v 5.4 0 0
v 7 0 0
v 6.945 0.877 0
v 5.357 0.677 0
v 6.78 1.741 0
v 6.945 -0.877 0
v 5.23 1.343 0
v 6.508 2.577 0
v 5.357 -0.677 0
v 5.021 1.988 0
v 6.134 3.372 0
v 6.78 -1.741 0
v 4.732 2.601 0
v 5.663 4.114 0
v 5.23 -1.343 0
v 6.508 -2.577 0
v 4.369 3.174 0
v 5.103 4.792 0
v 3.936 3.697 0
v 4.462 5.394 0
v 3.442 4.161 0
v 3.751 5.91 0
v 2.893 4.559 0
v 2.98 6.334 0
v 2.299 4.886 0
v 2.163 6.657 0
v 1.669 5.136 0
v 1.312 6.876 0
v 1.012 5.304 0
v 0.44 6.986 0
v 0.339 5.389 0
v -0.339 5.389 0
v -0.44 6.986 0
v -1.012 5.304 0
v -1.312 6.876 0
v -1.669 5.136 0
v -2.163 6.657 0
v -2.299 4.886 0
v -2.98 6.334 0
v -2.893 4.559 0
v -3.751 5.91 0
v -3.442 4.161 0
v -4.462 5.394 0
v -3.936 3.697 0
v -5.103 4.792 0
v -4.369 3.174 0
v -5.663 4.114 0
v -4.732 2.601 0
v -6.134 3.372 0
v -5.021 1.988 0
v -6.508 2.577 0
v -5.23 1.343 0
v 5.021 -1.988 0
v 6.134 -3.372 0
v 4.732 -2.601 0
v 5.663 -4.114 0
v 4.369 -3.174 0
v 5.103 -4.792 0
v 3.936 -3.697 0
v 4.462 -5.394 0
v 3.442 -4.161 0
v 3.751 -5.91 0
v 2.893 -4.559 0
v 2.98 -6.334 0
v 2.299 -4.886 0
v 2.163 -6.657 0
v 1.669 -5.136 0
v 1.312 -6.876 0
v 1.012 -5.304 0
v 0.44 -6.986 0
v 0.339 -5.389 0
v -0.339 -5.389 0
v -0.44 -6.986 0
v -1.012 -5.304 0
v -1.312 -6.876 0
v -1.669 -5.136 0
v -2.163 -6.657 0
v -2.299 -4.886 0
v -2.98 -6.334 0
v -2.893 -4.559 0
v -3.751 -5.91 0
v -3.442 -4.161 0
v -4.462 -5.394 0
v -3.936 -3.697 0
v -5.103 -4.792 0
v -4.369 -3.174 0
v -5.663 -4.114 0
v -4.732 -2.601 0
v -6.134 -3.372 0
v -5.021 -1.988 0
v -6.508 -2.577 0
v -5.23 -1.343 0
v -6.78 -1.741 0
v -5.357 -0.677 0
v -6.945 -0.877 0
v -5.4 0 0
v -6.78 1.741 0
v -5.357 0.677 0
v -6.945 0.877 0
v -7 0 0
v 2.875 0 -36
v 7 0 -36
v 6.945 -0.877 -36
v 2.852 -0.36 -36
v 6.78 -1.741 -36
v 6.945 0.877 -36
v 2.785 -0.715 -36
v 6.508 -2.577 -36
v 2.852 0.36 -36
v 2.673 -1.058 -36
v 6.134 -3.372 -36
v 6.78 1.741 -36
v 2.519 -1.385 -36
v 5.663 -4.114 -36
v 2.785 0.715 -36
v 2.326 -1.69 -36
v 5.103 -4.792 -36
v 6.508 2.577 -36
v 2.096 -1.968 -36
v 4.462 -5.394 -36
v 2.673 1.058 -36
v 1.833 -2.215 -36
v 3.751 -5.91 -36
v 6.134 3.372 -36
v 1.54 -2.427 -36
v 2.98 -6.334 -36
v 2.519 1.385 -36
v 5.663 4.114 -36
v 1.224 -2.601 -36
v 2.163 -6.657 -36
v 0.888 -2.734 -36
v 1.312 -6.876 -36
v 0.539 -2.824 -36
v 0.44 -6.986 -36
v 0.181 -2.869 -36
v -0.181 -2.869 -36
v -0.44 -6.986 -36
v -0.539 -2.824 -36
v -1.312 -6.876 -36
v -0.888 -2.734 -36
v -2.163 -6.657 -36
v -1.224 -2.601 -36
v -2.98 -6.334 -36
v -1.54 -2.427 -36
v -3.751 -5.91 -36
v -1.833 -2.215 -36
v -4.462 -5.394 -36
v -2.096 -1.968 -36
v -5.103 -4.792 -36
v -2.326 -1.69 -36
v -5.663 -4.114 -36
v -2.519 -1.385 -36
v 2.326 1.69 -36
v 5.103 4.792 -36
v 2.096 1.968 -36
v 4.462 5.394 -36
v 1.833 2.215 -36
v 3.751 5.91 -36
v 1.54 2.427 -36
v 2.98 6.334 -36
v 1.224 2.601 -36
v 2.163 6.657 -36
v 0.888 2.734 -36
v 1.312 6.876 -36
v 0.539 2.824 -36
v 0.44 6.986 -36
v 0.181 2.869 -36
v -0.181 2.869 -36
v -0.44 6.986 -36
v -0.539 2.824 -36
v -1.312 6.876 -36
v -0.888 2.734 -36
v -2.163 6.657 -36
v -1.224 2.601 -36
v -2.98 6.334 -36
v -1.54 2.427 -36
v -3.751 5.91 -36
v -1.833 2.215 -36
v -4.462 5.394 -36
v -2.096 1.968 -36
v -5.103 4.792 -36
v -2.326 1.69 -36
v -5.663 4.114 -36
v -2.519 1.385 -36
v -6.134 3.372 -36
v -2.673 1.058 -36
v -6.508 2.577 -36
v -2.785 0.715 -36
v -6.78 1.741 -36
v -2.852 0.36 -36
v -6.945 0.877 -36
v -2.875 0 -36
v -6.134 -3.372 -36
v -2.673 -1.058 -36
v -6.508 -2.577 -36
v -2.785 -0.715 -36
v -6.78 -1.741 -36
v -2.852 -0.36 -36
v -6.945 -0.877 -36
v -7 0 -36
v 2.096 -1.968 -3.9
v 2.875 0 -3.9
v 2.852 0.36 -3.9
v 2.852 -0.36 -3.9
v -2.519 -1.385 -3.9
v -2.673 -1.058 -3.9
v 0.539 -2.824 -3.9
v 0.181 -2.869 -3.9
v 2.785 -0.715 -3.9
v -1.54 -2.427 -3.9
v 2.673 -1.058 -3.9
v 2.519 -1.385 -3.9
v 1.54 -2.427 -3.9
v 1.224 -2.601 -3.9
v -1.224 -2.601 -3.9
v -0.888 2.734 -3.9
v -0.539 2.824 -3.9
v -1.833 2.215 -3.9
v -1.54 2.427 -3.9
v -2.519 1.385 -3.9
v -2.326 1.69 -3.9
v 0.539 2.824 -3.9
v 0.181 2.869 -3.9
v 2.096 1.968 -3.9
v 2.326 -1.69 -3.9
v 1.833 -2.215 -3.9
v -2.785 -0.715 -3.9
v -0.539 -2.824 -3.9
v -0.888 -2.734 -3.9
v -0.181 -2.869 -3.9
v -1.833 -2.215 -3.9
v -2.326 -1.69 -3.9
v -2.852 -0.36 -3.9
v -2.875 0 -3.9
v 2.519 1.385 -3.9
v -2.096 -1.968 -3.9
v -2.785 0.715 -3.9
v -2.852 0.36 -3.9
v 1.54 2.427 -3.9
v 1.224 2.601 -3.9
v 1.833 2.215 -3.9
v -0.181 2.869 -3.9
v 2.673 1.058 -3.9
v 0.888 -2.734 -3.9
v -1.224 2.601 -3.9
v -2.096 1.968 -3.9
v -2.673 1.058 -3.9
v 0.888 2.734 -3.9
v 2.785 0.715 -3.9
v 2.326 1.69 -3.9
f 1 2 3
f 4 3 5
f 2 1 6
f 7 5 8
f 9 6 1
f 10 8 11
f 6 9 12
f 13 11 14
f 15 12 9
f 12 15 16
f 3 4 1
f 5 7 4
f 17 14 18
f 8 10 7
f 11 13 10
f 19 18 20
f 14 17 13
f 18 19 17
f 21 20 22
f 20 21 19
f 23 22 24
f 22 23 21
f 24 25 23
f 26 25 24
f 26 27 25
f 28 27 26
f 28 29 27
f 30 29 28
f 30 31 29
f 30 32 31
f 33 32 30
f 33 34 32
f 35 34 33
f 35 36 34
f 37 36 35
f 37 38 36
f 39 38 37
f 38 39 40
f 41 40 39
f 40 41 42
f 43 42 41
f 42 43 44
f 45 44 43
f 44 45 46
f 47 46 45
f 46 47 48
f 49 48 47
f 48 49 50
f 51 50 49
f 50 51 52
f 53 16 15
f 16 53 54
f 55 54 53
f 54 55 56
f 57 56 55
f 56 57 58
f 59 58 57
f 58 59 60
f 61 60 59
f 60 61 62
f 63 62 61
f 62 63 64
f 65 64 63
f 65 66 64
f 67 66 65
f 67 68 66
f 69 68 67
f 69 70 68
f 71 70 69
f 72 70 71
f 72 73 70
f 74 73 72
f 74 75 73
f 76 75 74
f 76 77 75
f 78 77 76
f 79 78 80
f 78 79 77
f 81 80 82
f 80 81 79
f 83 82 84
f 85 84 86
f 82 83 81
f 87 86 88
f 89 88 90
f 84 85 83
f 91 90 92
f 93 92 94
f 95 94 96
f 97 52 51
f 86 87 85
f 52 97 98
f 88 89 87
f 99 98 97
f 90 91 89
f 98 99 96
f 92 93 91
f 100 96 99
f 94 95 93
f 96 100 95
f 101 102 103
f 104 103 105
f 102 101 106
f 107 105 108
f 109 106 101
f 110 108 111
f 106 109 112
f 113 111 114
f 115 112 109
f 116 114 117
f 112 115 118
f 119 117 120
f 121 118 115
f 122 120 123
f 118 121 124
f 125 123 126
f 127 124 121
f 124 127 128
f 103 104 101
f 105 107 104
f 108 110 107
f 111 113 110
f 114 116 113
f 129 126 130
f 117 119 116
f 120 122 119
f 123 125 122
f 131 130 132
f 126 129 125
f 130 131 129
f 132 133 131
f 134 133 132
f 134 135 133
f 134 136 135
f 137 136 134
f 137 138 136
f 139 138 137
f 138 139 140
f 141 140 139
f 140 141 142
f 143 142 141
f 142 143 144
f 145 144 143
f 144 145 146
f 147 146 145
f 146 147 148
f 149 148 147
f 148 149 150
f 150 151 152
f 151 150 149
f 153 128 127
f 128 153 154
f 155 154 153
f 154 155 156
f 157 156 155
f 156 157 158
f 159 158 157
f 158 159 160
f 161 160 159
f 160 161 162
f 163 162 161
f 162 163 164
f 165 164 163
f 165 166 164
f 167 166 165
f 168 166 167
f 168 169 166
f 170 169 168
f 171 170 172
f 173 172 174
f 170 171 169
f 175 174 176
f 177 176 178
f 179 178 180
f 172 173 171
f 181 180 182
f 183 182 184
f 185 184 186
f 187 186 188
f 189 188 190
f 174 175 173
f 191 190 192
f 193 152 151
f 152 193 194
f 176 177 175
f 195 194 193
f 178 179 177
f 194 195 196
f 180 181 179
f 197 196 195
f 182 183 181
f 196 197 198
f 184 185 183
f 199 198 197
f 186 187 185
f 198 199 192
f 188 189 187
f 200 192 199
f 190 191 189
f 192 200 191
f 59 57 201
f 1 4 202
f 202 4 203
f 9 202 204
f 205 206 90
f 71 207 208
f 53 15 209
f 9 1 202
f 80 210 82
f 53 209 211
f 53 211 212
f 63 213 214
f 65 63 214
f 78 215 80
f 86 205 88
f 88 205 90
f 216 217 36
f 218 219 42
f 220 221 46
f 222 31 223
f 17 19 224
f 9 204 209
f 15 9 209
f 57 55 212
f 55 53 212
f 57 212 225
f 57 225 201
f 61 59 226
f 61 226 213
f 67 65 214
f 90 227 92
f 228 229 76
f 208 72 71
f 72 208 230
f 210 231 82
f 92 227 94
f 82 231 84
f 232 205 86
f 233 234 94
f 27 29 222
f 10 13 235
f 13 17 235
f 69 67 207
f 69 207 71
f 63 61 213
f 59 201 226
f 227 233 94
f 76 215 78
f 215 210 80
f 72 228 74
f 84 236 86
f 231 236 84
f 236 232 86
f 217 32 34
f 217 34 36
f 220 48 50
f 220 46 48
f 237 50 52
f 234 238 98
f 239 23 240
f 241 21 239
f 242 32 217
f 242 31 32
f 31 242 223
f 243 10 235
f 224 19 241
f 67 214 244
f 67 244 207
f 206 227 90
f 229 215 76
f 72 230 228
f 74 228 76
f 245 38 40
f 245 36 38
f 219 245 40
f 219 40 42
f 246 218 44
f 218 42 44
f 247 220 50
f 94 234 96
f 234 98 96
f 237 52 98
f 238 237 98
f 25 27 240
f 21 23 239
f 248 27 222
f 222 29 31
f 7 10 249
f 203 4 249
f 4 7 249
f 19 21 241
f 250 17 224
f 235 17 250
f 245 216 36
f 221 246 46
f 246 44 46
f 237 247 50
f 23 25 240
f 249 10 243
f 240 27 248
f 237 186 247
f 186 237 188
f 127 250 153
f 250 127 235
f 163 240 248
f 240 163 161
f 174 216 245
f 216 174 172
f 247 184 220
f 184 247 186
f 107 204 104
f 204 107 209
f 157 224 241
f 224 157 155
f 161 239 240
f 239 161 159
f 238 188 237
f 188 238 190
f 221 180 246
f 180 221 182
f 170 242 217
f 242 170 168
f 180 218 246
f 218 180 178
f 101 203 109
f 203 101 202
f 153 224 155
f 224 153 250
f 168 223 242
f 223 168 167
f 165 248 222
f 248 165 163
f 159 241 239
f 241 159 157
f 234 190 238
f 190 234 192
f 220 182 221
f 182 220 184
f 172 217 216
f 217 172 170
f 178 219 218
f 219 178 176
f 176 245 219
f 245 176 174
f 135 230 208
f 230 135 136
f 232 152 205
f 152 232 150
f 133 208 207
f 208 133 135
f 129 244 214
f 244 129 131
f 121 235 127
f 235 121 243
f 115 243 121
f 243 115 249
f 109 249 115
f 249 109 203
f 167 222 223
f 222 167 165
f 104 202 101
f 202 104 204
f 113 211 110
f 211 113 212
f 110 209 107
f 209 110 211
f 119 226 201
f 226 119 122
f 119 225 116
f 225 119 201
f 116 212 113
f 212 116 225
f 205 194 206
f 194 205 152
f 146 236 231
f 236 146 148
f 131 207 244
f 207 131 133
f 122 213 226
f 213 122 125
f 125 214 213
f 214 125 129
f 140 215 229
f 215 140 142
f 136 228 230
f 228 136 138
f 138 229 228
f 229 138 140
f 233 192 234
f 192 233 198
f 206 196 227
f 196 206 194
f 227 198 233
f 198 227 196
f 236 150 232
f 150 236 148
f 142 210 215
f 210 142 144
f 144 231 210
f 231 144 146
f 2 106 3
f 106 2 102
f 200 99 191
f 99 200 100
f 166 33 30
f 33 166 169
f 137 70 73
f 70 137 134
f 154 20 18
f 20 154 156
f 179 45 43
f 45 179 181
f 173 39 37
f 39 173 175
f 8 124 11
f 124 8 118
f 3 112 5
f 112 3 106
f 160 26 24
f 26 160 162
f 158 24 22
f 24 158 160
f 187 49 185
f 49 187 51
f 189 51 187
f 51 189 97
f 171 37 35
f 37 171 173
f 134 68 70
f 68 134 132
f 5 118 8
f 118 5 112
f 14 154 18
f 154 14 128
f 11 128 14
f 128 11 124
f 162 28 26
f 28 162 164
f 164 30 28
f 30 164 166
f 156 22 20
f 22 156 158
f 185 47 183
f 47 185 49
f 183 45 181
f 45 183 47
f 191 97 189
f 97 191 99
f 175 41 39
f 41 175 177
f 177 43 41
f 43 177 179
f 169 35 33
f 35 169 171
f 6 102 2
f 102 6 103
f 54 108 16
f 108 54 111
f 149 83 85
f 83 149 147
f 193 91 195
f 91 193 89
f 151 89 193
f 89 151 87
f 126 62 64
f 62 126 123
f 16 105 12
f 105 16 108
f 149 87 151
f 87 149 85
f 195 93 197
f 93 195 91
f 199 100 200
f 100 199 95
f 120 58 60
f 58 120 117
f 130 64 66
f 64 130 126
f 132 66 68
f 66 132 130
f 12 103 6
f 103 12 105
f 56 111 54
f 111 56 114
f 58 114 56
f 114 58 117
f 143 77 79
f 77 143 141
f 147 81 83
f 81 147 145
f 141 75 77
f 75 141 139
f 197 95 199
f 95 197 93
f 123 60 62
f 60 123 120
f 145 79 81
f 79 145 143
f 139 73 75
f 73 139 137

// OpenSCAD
$fn = 50;


difference() {
	union() {
		translate(v = [0, 0, -36.0000000000]) {
			cylinder(h = 36, r = 7.0000000000);
		}
		cylinder(h = 0, r = 17.0000000000);
	}
	union() {
		translate(v = [0, 0, 0]) {
			rotate(a = [0, 0, 0]) {
				difference() {
					union() {
						#translate(v = [0, 0, -36.0000000000]) {
							cylinder(h = 36, r = 2.6000000000);
						}
						#translate(v = [0, 0, -3.9000000000]) {
							cylinder(h = 3.9000000000, r = 7.0000000000, r1 = 2.8750000000, r2 = 5.4000000000);
						}
						#translate(v = [0, 0, -36.0000000000]) {
							cylinder(h = 36, r = 2.8750000000);
						}
						#translate(v = [0, 0, -36.0000000000]) {
							cylinder(h = 36, r = 2.6000000000);
						}
					}
					union();
				}
			}
		}
	}
}
